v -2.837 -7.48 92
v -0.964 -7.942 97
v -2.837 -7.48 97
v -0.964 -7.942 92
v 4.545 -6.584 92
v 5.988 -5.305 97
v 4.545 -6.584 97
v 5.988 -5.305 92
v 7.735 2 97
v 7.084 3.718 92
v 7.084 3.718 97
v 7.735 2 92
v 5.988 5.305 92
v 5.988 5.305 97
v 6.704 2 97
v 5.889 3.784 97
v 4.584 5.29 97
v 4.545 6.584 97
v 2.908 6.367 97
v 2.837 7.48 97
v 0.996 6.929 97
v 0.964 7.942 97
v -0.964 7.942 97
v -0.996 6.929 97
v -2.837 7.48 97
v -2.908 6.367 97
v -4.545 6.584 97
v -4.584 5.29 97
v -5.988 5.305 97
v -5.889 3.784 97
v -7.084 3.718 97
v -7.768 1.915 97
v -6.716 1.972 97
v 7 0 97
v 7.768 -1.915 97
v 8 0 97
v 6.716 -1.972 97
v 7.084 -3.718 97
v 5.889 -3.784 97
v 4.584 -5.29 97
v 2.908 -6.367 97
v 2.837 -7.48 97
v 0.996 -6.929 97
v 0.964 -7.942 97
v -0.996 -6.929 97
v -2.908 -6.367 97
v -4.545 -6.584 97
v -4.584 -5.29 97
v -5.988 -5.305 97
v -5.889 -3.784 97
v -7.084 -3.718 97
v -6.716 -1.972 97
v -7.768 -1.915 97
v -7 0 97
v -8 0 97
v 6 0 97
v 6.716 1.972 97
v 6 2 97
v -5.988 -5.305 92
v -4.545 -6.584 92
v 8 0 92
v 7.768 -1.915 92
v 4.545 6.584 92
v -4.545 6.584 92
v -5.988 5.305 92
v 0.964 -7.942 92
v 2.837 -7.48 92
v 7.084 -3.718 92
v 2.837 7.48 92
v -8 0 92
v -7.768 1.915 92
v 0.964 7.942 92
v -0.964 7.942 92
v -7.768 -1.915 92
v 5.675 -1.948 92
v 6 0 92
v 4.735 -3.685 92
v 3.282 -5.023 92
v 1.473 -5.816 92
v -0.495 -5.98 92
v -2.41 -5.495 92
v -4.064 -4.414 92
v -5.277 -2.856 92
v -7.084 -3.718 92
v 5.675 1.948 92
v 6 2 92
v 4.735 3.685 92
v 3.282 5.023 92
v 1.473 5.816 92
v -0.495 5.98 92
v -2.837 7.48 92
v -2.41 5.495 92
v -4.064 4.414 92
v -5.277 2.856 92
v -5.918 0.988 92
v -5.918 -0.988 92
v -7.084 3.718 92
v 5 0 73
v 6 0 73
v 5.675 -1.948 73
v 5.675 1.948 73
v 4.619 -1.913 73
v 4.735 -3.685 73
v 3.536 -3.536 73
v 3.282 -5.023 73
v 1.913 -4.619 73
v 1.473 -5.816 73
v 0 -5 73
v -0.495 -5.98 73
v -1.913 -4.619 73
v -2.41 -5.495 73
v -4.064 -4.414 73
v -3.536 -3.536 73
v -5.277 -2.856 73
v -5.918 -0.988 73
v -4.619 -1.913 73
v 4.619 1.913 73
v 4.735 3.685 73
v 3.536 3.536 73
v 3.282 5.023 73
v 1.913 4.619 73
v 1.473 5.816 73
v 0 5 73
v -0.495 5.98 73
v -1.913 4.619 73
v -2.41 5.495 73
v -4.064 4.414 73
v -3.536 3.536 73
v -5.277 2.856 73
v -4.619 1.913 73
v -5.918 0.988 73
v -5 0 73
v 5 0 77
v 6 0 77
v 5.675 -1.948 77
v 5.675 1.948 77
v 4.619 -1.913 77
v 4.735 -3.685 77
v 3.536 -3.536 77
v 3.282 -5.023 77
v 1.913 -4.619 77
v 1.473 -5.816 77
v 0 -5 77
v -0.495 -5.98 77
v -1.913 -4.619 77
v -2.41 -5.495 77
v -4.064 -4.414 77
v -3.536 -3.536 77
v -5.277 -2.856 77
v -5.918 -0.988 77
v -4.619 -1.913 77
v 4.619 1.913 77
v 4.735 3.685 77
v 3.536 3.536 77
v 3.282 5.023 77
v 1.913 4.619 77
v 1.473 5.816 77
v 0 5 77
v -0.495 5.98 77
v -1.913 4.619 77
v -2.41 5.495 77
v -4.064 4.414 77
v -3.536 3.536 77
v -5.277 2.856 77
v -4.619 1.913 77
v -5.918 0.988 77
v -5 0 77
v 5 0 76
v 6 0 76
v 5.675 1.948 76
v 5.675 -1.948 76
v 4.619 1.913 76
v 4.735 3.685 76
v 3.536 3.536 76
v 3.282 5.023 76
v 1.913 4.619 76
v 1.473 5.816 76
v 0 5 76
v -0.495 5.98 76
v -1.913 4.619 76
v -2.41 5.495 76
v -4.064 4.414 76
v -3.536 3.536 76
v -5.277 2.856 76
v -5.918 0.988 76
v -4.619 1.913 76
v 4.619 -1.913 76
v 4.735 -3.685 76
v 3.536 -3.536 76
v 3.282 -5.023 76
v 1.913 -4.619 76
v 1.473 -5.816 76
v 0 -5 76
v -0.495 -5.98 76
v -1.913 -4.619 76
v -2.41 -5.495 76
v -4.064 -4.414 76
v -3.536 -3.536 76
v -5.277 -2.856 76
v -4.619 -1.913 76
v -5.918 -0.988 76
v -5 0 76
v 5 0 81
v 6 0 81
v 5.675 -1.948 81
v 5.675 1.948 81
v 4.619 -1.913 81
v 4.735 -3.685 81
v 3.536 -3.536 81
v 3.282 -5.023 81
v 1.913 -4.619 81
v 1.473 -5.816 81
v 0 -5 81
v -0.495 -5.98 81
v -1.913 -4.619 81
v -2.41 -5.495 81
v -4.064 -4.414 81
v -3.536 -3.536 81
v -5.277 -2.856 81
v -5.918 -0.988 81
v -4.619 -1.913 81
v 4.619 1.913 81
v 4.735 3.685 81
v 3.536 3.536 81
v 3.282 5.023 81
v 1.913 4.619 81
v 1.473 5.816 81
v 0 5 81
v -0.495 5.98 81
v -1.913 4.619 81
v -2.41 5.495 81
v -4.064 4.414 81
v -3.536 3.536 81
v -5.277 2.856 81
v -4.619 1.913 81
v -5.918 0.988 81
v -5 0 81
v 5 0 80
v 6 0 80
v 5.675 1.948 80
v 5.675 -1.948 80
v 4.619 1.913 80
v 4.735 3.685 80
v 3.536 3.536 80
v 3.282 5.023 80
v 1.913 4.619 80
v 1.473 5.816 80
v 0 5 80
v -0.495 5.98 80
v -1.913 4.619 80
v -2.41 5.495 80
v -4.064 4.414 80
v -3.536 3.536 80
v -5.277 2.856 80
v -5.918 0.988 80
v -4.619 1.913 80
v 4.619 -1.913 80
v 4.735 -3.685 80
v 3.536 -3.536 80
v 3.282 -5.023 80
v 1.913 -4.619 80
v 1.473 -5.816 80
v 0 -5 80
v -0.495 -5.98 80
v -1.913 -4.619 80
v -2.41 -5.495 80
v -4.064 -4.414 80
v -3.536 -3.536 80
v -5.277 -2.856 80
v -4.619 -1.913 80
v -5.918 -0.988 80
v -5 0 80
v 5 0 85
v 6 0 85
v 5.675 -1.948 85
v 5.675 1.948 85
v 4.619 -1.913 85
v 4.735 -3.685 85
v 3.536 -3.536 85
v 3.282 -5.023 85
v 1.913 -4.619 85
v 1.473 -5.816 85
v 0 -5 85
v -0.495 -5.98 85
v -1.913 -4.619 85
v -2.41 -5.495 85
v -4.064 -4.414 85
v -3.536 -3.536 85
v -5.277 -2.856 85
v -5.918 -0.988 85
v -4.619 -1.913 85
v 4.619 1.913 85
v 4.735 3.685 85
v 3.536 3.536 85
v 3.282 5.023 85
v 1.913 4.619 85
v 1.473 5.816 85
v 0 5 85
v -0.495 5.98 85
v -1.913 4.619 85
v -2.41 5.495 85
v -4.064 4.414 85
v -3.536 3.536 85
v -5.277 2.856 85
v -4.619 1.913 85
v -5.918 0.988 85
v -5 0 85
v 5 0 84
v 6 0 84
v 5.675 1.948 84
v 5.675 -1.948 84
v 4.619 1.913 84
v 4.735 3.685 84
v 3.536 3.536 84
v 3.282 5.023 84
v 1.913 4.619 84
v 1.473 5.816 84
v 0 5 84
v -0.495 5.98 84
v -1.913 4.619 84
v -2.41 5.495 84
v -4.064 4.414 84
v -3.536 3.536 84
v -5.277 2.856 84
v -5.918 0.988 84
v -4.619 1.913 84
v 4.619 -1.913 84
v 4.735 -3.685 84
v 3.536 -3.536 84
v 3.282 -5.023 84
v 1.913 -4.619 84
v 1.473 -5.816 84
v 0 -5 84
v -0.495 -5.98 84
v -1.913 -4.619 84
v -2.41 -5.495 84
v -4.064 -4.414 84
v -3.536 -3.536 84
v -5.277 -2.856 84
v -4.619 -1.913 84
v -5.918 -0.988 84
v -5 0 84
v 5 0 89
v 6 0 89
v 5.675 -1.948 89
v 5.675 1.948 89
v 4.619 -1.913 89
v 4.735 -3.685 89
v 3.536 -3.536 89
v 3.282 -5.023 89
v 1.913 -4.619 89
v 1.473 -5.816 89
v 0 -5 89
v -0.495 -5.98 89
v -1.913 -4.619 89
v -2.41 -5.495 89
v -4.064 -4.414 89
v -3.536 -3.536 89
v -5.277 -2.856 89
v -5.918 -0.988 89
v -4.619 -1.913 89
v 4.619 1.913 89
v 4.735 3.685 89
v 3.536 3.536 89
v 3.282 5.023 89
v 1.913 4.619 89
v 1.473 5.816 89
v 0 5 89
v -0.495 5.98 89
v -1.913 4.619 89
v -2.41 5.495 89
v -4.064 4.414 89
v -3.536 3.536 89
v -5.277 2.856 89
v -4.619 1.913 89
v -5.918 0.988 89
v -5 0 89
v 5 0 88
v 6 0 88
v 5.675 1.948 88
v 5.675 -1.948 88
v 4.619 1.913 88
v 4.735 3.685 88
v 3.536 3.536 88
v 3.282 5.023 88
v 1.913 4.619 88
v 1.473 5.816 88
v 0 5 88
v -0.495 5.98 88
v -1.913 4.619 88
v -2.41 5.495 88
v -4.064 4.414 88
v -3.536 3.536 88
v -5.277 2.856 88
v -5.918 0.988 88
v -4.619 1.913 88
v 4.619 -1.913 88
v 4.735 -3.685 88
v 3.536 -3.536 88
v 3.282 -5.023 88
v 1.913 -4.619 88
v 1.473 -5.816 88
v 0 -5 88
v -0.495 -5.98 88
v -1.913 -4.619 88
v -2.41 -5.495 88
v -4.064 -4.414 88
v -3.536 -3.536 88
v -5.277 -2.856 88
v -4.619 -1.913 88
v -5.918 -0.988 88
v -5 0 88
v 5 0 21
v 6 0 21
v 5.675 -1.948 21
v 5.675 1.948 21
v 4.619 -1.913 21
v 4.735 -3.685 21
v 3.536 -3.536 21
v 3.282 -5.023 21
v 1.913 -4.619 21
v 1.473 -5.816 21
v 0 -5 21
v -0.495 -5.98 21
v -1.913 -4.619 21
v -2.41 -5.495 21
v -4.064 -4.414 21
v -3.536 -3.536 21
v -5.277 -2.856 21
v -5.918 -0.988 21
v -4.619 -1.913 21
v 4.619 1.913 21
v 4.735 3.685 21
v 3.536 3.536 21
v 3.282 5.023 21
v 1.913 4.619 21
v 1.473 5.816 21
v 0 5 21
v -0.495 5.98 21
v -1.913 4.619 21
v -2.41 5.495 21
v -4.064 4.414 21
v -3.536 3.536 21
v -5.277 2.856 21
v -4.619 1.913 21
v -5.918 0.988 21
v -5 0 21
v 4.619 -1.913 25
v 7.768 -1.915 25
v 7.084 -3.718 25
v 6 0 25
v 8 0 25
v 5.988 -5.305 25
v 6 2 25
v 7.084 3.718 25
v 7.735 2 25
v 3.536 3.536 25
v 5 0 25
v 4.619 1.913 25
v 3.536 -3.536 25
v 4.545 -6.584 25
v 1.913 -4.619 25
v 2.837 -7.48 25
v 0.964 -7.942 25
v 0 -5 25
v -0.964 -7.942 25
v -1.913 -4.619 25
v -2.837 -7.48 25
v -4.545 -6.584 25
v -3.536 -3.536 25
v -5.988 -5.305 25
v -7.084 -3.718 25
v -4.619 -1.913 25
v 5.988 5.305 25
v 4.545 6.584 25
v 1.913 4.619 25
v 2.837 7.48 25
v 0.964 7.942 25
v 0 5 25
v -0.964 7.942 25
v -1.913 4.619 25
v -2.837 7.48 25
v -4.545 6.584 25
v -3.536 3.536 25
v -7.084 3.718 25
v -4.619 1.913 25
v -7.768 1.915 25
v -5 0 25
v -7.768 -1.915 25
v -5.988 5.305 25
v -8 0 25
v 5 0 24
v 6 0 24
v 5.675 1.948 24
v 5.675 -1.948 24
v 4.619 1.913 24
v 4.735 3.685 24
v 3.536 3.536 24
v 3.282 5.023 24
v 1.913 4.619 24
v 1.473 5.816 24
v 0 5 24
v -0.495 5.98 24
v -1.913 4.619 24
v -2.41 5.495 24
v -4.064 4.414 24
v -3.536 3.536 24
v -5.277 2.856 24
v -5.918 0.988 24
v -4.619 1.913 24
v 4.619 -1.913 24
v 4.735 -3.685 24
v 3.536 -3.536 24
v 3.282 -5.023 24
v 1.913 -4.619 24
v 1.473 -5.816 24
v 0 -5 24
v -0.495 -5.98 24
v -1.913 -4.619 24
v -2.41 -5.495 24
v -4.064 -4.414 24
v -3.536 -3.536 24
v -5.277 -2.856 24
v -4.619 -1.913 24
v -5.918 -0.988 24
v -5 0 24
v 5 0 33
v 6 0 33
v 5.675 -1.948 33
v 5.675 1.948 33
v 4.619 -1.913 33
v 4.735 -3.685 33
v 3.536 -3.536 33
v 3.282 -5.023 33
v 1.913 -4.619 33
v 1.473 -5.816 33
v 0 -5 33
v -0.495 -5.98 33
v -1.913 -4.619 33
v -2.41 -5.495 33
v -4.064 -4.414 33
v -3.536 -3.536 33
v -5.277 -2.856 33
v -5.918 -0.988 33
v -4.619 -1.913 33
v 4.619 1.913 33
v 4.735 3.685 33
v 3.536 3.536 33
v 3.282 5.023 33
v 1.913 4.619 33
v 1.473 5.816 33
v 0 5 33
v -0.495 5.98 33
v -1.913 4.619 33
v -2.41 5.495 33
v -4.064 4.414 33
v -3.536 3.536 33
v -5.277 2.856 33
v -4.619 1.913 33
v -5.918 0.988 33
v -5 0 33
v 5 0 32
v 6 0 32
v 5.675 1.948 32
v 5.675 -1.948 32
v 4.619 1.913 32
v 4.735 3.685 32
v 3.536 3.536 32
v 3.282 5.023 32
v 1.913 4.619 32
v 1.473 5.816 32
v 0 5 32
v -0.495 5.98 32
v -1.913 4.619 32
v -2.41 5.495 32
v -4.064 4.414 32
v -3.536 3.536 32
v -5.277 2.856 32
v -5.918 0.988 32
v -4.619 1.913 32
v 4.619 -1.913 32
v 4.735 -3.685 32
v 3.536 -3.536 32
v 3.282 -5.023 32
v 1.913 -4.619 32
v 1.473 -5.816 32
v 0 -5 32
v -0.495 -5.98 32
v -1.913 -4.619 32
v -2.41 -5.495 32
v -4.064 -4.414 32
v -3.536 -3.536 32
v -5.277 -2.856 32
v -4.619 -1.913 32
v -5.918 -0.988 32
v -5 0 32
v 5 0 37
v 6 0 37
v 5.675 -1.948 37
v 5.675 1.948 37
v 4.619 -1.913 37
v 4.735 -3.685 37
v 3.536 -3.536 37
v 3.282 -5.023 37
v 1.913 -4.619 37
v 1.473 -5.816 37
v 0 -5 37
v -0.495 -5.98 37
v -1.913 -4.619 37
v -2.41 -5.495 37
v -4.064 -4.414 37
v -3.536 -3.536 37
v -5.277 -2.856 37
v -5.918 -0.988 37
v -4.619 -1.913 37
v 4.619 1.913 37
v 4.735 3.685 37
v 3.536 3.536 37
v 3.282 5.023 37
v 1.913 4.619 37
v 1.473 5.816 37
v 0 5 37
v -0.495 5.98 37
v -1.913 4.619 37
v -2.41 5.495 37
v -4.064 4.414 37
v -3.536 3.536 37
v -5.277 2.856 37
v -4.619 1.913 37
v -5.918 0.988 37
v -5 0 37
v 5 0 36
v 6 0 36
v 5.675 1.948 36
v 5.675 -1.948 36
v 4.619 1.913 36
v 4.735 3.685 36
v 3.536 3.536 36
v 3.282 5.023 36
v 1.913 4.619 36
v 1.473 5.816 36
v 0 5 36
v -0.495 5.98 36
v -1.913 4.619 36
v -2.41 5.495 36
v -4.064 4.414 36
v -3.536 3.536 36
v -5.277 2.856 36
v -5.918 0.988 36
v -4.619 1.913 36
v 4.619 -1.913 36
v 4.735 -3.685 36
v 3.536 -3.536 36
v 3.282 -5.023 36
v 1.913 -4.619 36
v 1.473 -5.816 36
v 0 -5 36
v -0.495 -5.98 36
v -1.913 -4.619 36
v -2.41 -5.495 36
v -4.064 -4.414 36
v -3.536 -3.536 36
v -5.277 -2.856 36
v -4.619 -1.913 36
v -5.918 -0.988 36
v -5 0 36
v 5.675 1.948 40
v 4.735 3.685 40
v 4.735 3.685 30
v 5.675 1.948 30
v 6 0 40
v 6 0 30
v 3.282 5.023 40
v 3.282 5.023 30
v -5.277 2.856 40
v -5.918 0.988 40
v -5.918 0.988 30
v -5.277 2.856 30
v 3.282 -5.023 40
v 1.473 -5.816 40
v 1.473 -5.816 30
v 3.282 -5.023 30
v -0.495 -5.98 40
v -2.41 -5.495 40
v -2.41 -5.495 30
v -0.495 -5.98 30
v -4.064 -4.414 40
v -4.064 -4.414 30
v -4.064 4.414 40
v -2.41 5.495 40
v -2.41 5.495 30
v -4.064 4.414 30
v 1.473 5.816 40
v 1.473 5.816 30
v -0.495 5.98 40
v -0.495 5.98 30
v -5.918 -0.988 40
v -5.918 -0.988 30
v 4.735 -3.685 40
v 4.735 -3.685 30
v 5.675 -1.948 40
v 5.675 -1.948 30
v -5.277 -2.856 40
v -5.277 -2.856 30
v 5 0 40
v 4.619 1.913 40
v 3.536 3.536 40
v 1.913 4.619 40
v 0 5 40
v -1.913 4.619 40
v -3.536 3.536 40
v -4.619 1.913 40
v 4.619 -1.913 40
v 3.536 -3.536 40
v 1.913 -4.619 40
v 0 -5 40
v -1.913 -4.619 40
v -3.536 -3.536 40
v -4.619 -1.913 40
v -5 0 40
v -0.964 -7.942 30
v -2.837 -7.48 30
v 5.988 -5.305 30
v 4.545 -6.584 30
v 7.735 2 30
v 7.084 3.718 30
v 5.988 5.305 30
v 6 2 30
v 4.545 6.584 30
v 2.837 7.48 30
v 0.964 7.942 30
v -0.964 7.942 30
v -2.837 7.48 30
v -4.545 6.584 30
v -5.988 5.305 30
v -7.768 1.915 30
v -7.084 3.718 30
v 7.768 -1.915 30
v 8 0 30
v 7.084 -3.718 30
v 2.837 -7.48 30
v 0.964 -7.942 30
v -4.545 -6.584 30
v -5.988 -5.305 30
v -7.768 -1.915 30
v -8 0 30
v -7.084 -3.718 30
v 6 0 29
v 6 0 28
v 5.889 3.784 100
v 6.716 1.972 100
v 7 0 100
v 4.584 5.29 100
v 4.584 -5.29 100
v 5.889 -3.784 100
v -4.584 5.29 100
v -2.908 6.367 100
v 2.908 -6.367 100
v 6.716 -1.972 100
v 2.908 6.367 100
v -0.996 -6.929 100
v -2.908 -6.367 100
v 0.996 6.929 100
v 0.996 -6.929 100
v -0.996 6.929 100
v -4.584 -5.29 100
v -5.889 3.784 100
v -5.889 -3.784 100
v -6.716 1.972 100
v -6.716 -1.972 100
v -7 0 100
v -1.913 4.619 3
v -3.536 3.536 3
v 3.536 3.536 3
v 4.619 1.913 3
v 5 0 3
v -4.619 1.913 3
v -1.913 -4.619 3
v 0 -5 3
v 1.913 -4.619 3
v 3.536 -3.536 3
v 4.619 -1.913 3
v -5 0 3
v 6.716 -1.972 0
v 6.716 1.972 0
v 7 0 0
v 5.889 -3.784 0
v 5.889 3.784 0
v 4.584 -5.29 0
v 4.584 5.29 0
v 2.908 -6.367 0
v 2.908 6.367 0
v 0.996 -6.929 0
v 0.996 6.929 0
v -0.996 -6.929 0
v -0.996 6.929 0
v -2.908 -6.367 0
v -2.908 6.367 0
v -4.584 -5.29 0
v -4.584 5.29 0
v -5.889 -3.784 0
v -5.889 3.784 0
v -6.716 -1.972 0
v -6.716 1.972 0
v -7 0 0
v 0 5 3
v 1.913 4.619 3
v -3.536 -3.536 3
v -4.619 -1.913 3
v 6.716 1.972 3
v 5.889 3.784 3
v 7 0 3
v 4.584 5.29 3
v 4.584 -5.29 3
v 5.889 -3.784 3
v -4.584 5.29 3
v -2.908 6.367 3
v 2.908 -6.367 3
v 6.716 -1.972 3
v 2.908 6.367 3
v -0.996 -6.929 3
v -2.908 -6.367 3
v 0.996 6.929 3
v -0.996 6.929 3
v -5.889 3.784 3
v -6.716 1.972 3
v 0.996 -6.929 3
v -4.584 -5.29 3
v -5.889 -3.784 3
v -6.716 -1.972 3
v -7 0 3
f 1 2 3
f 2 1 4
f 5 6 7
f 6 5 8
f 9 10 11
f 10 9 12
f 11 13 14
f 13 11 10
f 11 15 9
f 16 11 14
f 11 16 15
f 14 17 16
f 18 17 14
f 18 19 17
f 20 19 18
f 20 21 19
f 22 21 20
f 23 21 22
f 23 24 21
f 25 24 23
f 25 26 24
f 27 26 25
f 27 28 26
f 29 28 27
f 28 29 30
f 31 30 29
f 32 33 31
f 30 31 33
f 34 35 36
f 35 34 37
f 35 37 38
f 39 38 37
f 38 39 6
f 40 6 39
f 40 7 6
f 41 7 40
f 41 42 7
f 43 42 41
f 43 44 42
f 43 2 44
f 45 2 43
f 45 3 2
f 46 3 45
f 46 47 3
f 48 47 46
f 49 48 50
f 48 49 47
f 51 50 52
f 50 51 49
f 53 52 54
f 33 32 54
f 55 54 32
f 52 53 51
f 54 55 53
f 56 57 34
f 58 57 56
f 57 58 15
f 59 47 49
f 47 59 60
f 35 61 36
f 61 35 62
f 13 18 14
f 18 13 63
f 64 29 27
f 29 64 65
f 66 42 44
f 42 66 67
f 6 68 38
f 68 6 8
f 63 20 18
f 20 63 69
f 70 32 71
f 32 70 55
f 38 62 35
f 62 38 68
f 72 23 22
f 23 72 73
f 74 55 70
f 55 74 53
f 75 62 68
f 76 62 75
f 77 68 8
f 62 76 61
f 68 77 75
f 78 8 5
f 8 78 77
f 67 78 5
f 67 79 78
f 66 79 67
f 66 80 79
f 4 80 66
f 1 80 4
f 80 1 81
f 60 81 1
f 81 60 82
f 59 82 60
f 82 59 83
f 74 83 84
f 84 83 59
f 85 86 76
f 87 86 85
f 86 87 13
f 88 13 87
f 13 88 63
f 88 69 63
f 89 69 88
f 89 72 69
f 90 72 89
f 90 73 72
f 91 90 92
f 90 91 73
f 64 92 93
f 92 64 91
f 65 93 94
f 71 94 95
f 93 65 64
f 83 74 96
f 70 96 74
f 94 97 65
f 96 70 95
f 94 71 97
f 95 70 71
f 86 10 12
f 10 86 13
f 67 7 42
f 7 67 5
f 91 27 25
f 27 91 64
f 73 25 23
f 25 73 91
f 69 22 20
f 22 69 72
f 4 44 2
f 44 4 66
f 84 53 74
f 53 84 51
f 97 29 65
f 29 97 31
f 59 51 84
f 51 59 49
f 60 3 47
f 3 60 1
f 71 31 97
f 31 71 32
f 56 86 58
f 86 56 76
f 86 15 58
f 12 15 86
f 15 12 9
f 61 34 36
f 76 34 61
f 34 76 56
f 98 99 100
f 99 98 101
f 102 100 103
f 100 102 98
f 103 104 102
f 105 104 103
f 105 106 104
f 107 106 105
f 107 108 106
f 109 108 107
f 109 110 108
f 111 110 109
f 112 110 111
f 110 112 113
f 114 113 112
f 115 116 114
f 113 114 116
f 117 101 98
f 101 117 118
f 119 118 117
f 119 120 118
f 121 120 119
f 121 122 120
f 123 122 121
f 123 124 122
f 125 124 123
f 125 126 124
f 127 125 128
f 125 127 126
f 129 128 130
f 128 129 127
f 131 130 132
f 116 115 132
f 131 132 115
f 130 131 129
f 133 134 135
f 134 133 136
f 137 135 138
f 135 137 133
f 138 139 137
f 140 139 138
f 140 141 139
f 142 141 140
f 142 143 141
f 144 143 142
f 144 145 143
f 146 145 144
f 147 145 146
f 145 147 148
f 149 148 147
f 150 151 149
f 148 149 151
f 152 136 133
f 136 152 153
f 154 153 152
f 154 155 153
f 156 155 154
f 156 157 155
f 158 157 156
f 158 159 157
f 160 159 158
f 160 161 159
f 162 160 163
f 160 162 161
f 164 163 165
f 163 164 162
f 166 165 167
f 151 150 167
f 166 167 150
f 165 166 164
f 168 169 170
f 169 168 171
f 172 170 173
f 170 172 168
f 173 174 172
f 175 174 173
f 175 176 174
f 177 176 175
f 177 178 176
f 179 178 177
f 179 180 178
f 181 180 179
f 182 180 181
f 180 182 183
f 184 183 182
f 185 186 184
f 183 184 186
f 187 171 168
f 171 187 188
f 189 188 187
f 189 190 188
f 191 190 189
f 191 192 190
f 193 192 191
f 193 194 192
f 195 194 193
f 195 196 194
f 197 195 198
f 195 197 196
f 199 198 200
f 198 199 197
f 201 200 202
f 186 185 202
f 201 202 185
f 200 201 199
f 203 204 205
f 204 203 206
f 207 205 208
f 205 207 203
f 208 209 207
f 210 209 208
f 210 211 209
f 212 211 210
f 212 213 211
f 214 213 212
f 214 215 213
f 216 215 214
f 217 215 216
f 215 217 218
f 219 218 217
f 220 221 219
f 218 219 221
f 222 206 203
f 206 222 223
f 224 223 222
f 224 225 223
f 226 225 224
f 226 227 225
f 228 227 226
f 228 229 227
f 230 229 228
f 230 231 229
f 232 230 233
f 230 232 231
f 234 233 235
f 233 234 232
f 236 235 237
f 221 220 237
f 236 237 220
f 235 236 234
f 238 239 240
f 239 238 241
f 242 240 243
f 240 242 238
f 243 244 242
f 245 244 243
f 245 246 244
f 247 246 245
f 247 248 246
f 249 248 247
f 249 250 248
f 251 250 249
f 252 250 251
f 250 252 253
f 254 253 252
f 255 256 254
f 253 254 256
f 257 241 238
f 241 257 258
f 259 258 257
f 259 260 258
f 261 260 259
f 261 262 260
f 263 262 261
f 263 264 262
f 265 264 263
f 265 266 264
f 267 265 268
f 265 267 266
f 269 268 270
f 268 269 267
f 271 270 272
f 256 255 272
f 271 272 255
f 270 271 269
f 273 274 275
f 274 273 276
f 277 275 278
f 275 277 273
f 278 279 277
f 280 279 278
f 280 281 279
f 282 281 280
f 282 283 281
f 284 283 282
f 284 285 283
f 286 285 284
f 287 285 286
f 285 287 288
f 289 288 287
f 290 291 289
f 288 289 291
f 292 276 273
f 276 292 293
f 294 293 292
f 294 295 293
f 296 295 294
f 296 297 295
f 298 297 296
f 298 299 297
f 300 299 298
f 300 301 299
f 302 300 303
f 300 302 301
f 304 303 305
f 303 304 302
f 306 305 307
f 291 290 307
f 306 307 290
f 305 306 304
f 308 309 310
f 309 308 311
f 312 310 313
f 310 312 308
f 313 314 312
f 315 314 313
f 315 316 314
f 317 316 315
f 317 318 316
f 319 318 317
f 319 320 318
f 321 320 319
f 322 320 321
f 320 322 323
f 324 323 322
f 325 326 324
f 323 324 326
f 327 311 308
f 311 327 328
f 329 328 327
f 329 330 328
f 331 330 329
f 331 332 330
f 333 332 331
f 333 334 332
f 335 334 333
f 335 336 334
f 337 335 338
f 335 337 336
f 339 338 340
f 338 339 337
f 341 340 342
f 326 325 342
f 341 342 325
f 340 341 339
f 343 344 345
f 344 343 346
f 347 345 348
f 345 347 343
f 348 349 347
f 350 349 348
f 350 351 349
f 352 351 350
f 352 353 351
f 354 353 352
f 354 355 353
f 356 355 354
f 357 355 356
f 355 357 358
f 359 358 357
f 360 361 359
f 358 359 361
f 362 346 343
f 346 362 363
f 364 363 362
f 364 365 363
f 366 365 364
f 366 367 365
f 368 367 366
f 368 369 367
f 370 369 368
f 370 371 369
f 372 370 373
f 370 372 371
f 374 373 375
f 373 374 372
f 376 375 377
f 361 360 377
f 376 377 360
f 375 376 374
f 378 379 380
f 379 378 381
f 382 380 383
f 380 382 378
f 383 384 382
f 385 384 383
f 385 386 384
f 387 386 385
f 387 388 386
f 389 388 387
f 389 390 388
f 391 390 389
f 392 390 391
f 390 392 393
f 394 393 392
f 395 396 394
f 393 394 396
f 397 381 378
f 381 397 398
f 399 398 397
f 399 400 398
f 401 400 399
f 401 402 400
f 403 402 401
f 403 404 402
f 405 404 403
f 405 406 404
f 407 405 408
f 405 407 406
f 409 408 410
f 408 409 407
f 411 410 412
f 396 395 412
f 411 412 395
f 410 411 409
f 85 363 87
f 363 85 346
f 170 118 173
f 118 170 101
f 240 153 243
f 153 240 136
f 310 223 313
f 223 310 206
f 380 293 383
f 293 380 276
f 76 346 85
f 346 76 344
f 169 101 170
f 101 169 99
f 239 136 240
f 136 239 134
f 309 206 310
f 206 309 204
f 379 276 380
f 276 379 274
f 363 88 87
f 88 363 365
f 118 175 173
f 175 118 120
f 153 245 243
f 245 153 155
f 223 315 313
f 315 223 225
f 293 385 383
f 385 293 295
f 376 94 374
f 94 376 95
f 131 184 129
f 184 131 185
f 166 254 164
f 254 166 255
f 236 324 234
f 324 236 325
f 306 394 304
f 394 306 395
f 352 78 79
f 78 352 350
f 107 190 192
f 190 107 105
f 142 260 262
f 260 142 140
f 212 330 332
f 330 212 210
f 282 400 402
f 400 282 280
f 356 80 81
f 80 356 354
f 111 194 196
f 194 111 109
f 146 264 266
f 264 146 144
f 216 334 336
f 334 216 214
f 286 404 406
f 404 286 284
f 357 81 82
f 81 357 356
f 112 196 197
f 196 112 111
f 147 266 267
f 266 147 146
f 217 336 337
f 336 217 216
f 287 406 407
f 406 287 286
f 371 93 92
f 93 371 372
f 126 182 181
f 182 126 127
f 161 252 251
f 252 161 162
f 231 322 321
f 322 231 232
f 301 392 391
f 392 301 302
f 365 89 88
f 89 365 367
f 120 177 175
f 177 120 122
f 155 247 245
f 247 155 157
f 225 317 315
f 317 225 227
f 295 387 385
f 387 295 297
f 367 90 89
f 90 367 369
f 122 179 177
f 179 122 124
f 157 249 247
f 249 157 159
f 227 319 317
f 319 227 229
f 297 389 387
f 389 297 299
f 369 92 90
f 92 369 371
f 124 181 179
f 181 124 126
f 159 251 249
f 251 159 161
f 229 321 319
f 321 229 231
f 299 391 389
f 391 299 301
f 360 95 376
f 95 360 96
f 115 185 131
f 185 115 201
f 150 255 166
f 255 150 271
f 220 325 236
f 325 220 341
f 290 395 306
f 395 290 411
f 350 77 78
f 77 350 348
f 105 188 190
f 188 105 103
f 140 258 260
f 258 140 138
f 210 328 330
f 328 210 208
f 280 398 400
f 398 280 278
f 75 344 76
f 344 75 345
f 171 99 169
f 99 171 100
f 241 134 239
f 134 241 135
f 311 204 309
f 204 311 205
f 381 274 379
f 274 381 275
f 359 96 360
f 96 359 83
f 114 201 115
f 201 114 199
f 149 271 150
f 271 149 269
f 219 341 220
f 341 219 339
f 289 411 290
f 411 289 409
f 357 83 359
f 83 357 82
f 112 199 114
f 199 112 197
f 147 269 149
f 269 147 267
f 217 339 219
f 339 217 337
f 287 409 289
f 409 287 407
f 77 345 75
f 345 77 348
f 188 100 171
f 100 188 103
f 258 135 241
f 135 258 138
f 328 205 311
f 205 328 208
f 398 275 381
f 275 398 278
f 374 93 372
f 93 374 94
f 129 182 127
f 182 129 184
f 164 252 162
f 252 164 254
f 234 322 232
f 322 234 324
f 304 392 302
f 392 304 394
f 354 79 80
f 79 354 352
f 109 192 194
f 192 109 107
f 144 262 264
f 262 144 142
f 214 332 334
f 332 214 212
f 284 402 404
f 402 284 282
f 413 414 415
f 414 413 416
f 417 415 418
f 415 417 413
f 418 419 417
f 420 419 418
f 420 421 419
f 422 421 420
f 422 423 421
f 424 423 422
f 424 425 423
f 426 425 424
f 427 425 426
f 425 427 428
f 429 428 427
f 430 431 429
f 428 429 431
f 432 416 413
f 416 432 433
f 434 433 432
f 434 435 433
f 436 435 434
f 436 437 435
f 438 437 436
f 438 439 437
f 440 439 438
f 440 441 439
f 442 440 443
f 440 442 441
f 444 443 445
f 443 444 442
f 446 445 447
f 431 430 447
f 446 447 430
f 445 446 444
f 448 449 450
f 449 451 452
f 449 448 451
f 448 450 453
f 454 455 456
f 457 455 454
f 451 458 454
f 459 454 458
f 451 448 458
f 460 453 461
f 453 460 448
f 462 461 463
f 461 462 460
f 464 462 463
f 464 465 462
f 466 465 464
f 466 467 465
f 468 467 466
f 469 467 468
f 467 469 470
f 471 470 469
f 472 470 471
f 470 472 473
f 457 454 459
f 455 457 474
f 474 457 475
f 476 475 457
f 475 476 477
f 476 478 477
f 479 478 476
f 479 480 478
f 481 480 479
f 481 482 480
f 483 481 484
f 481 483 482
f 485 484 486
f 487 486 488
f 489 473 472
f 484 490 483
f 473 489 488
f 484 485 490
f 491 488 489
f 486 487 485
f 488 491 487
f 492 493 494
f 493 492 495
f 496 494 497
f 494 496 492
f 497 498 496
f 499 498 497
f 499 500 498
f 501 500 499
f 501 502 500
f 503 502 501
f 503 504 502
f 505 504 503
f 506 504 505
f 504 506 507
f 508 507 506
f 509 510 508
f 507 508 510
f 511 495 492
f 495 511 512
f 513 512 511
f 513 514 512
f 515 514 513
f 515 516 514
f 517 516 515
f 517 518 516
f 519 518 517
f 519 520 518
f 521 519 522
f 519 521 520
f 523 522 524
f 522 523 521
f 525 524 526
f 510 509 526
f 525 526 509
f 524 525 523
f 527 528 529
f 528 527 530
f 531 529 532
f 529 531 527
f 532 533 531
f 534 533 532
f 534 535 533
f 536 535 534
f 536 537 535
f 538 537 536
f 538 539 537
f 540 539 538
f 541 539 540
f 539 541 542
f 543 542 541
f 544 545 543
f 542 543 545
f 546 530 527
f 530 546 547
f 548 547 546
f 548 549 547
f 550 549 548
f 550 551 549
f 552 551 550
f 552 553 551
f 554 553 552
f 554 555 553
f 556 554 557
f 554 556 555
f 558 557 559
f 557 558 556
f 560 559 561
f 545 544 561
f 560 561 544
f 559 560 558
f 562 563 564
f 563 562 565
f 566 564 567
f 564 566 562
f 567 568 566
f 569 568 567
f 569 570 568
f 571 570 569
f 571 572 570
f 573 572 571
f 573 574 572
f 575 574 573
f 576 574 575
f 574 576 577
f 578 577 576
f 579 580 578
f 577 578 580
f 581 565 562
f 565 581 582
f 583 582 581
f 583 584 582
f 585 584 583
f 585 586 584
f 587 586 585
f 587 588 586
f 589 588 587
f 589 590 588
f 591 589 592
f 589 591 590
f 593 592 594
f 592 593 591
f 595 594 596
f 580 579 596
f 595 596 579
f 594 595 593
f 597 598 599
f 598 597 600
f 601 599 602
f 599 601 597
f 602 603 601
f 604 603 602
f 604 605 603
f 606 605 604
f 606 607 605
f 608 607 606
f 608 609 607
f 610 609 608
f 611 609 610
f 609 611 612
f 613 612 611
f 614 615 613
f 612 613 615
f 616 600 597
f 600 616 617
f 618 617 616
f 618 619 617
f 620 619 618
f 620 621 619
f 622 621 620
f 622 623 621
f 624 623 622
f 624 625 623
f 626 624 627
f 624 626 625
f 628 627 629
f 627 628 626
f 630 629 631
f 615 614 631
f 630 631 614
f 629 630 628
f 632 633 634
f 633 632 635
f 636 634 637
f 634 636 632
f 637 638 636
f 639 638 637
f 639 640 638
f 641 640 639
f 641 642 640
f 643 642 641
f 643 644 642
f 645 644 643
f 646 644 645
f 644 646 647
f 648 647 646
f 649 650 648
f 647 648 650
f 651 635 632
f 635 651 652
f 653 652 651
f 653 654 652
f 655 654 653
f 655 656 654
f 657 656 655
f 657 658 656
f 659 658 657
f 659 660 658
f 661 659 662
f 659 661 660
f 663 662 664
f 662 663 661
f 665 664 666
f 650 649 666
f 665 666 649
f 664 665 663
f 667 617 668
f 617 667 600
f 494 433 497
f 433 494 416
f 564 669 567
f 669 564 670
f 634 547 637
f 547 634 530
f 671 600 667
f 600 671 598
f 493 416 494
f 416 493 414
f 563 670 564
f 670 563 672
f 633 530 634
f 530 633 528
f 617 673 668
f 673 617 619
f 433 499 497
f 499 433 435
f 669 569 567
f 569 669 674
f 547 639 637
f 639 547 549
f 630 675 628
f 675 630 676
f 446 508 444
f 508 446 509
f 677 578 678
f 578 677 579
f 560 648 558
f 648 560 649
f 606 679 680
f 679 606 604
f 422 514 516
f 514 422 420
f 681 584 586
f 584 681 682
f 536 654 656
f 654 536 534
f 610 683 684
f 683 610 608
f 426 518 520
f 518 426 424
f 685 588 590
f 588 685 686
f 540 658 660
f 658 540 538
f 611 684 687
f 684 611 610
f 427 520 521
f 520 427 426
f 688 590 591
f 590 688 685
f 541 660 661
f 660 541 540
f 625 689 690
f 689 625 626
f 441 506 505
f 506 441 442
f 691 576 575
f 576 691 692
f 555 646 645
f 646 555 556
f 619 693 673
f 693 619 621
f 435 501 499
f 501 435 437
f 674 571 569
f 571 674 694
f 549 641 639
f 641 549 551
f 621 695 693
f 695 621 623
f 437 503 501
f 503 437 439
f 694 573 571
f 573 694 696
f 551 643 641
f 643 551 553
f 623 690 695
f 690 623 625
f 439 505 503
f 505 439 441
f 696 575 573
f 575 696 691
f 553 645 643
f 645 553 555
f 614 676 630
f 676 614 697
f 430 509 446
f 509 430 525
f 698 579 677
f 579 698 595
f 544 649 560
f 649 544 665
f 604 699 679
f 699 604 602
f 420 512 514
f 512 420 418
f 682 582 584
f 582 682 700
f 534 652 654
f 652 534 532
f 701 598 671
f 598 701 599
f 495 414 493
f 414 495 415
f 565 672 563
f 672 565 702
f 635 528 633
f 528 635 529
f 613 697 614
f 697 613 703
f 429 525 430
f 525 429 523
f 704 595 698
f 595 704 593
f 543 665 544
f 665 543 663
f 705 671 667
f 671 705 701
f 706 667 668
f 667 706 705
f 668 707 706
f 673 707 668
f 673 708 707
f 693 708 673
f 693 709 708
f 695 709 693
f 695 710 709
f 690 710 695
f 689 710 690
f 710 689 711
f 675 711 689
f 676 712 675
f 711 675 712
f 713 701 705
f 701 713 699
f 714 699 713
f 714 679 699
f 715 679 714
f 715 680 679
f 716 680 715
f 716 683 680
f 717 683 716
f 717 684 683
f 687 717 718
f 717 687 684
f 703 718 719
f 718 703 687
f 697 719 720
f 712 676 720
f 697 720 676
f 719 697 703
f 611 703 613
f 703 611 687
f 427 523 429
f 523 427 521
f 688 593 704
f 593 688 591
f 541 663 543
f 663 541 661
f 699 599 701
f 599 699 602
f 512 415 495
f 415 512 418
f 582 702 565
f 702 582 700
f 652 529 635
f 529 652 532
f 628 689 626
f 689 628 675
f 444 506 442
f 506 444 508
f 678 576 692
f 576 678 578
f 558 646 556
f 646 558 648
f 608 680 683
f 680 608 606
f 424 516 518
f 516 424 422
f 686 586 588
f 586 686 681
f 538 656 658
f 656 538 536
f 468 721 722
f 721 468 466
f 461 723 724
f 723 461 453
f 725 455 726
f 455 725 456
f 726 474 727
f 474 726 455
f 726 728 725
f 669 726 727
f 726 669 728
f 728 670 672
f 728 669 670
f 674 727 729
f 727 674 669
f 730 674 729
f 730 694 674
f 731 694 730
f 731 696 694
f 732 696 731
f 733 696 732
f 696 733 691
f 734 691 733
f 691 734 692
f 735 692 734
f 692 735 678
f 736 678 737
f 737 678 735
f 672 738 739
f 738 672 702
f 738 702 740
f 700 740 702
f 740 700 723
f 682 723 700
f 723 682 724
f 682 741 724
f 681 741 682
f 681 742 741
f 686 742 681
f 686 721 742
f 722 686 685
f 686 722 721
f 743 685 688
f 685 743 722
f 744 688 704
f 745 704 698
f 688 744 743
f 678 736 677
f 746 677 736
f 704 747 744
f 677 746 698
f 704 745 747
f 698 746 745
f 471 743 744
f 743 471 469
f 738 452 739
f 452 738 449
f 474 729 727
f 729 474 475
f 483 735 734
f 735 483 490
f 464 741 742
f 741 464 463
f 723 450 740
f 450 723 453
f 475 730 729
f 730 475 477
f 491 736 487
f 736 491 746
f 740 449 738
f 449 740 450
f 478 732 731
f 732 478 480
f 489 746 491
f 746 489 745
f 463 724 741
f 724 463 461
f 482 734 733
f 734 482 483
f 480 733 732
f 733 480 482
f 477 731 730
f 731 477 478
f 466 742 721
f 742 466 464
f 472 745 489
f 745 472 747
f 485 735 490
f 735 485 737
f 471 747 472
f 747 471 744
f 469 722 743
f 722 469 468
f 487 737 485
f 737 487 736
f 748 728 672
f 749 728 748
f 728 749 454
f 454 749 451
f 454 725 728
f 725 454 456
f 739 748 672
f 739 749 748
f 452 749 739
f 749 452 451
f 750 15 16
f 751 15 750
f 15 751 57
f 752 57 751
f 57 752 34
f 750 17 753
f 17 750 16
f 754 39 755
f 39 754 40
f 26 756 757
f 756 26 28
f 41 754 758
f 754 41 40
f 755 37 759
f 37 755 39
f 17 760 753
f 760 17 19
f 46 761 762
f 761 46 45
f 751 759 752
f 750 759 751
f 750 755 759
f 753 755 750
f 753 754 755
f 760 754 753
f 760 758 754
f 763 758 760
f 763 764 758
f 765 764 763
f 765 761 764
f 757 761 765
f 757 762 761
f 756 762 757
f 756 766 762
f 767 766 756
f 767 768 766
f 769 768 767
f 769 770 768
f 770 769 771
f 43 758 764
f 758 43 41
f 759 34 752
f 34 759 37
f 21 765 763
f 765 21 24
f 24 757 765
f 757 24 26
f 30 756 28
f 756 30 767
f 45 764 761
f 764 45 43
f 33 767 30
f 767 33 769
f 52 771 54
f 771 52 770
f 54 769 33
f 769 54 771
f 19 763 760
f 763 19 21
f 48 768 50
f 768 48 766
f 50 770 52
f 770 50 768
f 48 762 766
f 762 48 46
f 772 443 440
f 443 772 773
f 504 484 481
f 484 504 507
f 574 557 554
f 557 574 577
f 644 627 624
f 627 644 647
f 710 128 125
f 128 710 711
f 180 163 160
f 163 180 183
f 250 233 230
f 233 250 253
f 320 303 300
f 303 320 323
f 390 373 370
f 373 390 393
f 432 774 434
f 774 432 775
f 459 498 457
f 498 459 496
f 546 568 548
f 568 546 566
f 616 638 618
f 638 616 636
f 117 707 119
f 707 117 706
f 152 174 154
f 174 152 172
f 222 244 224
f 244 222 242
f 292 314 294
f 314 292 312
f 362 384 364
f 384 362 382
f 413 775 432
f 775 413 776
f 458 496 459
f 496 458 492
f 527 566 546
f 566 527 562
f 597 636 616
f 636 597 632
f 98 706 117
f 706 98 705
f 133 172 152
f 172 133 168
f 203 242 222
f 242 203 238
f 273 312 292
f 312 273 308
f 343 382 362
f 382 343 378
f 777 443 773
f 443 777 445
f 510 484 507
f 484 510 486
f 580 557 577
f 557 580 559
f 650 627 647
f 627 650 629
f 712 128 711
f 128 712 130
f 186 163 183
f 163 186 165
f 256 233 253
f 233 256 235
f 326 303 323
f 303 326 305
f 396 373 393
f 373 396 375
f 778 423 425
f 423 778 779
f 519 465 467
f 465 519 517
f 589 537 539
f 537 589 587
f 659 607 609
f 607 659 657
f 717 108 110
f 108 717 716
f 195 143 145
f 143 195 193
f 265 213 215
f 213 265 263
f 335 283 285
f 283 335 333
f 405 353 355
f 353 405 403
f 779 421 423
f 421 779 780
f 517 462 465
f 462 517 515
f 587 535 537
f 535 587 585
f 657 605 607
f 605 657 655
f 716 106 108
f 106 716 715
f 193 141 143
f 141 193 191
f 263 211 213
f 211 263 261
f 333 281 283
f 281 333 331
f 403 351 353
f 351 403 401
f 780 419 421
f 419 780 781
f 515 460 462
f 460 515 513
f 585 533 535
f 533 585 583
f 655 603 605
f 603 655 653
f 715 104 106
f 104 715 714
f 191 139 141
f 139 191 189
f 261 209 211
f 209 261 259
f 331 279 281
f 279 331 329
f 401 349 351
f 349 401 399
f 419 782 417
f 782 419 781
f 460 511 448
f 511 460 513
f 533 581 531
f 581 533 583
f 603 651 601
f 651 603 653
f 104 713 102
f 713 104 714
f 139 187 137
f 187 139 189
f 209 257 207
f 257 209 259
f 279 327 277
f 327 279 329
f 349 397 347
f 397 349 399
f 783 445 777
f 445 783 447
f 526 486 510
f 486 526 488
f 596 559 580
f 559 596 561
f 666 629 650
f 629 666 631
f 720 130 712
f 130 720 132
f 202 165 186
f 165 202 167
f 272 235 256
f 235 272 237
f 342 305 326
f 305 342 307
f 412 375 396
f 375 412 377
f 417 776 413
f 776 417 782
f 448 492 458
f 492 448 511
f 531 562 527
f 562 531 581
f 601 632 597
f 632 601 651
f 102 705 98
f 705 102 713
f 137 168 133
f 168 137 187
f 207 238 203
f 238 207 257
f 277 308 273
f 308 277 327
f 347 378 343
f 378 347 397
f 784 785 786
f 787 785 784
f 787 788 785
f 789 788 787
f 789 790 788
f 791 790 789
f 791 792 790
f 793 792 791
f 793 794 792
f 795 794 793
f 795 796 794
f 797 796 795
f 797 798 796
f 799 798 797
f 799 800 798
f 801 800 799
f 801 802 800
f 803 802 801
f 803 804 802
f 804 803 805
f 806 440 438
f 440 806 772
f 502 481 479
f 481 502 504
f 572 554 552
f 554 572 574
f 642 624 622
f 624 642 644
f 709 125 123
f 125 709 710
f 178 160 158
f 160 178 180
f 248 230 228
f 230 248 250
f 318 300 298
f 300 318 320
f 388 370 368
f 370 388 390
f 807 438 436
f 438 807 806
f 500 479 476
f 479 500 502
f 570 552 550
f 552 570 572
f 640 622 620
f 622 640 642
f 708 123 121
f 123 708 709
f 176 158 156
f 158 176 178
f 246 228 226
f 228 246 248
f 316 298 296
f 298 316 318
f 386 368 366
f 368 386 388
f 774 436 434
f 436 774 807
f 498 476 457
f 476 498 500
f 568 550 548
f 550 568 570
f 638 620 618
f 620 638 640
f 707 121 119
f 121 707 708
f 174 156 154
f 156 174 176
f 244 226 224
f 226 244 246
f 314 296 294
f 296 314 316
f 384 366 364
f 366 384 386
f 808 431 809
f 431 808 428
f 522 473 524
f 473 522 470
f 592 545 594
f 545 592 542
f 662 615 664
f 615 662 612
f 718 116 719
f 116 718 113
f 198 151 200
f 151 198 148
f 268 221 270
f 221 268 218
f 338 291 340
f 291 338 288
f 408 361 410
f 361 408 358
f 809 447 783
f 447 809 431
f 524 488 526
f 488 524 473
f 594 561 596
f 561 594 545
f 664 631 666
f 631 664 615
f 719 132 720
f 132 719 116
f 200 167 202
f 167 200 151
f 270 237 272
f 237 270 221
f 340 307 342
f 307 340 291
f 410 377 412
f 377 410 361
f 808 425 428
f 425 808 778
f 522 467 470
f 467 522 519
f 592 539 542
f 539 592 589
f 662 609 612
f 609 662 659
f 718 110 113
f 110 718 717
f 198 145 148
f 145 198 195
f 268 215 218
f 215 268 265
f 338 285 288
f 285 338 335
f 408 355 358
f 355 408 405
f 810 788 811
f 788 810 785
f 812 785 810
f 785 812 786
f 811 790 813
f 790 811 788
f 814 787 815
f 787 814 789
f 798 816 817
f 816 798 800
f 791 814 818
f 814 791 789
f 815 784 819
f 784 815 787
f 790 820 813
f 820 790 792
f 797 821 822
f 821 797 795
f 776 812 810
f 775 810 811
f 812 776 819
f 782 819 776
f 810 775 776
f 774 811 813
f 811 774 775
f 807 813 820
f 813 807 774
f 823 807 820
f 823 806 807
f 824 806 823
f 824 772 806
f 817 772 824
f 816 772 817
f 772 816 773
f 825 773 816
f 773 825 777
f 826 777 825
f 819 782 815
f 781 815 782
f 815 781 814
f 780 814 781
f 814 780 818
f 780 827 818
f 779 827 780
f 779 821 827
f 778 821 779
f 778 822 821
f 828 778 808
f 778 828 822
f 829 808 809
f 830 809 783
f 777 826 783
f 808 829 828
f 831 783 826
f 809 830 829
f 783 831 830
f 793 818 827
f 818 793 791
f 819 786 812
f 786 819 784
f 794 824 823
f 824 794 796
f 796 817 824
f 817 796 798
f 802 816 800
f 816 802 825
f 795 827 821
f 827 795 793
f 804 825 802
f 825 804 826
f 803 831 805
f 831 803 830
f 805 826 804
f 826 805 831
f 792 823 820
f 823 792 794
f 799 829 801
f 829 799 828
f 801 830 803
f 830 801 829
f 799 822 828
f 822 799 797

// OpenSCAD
// Constants for dimensions (simplified for demonstration purposes)
shaft_length = 100;
shaft_diameter = 10;

grooved_cyl_length = 20;
grooved_cyl_diameter = 12;
groove_depth = 1;
groove_count = 5;

notched_ring_thickness = 5;
notched_ring_diameter = 16;
notch_width = 2;
notch_depth = 2;

bearing_interface_thickness = 3;
bearing_diameter = 14;

// Functions to create components
module shaft() {
    cylinder(h = shaft_length, d = shaft_diameter);
}

module grooved_cylinder() {
    difference() {
        cylinder(h = grooved_cyl_length, d = grooved_cyl_diameter);
        for(i = [0 : groove_count - 1]) {
            translate([0, 0, i * (grooved_cyl_length / groove_count)]) {
                cylinder(h = groove_depth, d = grooved_cyl_diameter + 2);
            }
        }
    }
}

module notched_ring() {
    difference() {
        cylinder(h = notched_ring_thickness, d = notched_ring_diameter);
        for(i = [0 : 360 : 360 / (360 / (notch_width * notch_depth))]) {
            rotate([0, 0, i]) {
                translate([notched_ring_diameter / 2 - notch_width, 0, 0])
                    cube([notch_width, notch_depth, notched_ring_thickness]);
            }
        }
    }
}

module bearing_interface() {
    cylinder(h = bearing_interface_thickness, d = bearing_diameter);
}

// Assemble model based on layers
module flexible_coupling() {

    // Layer 1
    translate([0, 0, shaft_length - bearing_interface_thickness])
        bearing_interface();

    // Layer 2
    translate([0, 0, shaft_length - bearing_interface_thickness - notched_ring_thickness])
        notched_ring();

    translate([0, 0, shaft_length - bearing_interface_thickness - notched_ring_thickness - grooved_cyl_length])
        grooved_cylinder();

    // Layer 3
    shaft();

    // Layer 4
    translate([0, 0, grooved_cyl_length])
        grooved_cylinder();

    translate([0, 0, grooved_cyl_length + notched_ring_thickness])
        notched_ring();

    // Layer 5
    bearing_interface();
}

// Render the flexible coupling
flexible_coupling();
